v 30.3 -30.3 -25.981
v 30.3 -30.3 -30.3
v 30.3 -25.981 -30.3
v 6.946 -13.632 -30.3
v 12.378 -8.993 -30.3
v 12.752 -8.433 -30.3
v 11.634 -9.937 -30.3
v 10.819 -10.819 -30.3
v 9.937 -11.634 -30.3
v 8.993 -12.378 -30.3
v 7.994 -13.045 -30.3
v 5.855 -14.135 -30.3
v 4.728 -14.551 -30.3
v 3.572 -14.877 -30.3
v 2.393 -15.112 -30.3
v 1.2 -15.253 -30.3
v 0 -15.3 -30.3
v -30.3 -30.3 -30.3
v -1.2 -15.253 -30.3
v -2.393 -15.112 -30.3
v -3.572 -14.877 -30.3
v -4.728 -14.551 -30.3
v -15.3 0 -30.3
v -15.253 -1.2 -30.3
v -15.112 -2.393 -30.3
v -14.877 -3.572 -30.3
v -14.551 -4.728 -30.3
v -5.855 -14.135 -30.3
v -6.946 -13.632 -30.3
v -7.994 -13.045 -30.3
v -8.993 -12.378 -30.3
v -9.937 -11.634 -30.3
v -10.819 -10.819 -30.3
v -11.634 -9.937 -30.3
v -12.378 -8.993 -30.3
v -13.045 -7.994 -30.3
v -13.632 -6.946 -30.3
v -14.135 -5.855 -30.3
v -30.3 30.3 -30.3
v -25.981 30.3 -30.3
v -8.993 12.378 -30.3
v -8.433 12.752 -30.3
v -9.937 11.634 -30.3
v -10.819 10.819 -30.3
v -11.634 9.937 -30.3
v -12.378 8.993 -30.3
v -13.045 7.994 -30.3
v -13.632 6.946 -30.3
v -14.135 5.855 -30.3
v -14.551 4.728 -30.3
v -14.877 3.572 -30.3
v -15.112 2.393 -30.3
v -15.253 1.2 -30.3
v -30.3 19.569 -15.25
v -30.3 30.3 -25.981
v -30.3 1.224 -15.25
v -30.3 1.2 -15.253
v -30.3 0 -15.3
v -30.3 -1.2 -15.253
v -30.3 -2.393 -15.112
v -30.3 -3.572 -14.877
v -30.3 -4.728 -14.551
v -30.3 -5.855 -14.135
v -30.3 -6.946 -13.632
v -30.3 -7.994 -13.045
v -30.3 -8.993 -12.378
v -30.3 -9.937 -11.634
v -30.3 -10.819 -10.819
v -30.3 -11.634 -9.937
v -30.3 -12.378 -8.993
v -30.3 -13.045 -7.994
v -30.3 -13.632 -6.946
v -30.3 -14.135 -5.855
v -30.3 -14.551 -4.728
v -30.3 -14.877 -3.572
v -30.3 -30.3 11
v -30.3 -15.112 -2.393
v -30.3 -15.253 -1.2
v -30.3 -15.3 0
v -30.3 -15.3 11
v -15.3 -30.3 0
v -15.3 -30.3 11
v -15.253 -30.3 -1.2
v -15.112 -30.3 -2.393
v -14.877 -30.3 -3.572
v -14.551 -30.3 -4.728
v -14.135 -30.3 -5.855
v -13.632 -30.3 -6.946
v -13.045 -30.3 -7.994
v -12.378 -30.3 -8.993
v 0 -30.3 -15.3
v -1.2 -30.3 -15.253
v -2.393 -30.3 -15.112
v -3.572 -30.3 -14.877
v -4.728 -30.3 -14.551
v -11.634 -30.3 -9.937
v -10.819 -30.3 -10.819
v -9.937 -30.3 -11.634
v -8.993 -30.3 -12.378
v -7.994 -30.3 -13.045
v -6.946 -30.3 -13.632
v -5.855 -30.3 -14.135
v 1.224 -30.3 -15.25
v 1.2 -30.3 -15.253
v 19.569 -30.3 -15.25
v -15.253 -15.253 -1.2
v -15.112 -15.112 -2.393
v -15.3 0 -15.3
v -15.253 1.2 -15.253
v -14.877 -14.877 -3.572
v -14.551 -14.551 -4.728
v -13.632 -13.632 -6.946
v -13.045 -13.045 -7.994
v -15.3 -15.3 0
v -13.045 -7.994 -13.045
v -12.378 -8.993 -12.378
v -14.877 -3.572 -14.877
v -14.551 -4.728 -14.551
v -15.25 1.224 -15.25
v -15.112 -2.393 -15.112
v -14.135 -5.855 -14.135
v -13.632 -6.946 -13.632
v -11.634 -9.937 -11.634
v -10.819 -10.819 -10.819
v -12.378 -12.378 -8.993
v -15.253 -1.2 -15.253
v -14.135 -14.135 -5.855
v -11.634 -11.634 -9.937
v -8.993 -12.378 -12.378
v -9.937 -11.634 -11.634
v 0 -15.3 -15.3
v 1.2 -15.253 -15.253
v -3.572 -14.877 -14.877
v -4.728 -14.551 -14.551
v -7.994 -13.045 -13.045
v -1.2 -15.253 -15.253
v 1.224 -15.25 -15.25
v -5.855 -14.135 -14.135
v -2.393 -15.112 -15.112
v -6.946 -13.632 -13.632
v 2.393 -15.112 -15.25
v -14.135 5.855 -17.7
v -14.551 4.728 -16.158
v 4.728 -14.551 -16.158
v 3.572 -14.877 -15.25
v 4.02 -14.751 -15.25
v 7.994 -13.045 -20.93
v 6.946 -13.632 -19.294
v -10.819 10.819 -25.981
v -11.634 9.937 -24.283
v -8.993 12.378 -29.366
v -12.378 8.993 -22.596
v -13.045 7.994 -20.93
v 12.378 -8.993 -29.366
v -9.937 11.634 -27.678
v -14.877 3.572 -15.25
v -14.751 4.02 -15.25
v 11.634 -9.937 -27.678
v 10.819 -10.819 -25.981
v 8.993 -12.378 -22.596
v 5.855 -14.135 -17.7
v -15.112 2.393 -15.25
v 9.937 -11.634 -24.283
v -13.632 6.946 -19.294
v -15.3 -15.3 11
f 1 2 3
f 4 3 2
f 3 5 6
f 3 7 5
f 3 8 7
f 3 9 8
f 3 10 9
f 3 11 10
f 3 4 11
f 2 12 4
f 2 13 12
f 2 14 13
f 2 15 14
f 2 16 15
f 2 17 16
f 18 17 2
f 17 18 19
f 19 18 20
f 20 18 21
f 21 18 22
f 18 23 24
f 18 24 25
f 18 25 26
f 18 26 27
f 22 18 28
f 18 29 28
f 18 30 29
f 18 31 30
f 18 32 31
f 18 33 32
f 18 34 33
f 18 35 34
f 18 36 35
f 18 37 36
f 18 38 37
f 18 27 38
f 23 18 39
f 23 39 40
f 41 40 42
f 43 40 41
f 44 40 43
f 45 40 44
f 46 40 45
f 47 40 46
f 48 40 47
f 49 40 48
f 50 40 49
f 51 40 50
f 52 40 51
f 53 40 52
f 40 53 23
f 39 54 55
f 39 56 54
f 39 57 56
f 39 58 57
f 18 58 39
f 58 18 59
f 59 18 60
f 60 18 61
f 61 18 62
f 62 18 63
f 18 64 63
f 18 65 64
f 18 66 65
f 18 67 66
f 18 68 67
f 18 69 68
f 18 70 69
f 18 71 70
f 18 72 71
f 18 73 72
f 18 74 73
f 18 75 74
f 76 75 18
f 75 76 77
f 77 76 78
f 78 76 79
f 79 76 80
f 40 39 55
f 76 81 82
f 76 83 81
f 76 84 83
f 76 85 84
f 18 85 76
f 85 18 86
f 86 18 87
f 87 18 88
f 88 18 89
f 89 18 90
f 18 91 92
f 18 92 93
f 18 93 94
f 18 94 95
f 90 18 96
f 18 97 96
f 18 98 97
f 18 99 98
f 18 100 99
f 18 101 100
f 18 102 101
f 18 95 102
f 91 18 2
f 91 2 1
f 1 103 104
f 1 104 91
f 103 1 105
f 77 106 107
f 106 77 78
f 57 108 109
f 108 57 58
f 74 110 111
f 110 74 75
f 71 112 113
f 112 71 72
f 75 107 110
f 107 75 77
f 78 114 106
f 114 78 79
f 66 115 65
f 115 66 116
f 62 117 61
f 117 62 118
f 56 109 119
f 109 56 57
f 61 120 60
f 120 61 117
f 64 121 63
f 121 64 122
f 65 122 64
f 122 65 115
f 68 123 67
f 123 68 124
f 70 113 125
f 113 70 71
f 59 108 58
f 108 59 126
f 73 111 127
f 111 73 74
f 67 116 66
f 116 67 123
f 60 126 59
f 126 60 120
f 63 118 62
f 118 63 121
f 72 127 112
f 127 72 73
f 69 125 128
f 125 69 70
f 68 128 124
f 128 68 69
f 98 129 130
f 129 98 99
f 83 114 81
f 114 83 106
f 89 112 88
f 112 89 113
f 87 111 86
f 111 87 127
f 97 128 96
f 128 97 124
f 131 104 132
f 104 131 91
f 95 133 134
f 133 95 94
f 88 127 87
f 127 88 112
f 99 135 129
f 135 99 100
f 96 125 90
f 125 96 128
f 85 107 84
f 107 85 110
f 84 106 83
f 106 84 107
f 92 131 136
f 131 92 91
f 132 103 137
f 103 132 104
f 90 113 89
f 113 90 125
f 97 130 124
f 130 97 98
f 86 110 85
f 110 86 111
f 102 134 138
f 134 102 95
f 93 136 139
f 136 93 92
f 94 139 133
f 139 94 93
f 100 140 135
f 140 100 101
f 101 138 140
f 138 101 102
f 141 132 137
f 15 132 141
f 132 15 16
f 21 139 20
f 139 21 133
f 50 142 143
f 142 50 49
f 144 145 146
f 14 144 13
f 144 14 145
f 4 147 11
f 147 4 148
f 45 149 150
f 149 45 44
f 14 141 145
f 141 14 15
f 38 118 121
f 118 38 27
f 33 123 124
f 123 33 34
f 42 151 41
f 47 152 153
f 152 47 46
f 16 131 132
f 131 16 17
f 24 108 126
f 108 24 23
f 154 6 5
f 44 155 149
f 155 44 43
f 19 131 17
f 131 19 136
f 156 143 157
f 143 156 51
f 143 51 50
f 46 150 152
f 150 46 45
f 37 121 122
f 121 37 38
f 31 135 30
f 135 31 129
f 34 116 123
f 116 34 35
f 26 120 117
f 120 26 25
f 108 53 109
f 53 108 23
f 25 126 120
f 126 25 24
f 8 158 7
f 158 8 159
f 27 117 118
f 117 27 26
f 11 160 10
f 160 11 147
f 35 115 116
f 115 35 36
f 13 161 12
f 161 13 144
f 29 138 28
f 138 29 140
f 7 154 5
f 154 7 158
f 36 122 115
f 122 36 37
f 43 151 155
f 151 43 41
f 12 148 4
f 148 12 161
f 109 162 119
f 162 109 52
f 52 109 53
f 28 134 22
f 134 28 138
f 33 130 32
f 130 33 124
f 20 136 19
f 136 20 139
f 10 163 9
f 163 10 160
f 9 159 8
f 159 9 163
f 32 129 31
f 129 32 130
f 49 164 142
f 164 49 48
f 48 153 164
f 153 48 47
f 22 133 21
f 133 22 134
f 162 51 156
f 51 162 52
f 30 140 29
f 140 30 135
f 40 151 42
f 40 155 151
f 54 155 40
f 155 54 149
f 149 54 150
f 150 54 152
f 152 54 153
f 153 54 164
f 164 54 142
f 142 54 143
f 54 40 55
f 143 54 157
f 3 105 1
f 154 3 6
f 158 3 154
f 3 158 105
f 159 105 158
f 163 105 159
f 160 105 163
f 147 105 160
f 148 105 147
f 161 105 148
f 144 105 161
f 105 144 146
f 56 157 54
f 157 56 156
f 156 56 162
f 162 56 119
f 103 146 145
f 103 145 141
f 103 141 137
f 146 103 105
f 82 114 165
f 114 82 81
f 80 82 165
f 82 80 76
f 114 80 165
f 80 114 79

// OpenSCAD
$fn = 80;

staff_diameter = 30;    // staff diameter, mm
fit_clearance  = 0.6;   // total diametral clearance for a comfortable slip fit
wall           = 15;    // wall thickness left around each hole

staff_hole_d = staff_diameter + fit_clearance;
staff_hole_r = staff_hole_d / 2;
cube_size    = staff_hole_d + 2 * wall;

module calibration_cube() {
    difference() {
        cube([cube_size, cube_size, cube_size], center = true);
        rotate([0, 90, 0]) cylinder(r = staff_hole_r, h = cube_size + 2, center = true); // X
        rotate([90, 0, 0]) cylinder(r = staff_hole_r, h = cube_size + 2, center = true); // Y
        cylinder(r = staff_hole_r, h = cube_size + 2, center = true);                    // Z
    }
}

tetra_angle = 54.7356;

module horizontal_cut() {
    translate([-cube_size/2 - 1, -cube_size/2 - 1, -cube_size/2 - 1])
        cube([cube_size + 2, cube_size + 2, cube_size/2 + 1]);
}
module horizontal_cut_2() {
    translate([-1, -50, -cube_size/4 - 0.1])
        cube([cube_size + 2, cube_size + 2, cube_size/2 + 1]);


    translate([-50, -1, -cube_size/4 - 0.1])
        cube([cube_size + 2, cube_size + 2, cube_size/2 + 1]);
}

module diagonal_cut() {
    rotate(a = tetra_angle, v = [-1, 1, 0])
        translate([-1000, -1000, -1015])
            cube([2000, 2000, 1000]);
}

union() {
    difference() {
        intersection() {
            calibration_cube();
            horizontal_cut();
            diagonal_cut();
        }
        horizontal_cut_2();
    }
    translate([-cube_size/2, -cube_size/2]) cube([wall, wall, 11]);
}
